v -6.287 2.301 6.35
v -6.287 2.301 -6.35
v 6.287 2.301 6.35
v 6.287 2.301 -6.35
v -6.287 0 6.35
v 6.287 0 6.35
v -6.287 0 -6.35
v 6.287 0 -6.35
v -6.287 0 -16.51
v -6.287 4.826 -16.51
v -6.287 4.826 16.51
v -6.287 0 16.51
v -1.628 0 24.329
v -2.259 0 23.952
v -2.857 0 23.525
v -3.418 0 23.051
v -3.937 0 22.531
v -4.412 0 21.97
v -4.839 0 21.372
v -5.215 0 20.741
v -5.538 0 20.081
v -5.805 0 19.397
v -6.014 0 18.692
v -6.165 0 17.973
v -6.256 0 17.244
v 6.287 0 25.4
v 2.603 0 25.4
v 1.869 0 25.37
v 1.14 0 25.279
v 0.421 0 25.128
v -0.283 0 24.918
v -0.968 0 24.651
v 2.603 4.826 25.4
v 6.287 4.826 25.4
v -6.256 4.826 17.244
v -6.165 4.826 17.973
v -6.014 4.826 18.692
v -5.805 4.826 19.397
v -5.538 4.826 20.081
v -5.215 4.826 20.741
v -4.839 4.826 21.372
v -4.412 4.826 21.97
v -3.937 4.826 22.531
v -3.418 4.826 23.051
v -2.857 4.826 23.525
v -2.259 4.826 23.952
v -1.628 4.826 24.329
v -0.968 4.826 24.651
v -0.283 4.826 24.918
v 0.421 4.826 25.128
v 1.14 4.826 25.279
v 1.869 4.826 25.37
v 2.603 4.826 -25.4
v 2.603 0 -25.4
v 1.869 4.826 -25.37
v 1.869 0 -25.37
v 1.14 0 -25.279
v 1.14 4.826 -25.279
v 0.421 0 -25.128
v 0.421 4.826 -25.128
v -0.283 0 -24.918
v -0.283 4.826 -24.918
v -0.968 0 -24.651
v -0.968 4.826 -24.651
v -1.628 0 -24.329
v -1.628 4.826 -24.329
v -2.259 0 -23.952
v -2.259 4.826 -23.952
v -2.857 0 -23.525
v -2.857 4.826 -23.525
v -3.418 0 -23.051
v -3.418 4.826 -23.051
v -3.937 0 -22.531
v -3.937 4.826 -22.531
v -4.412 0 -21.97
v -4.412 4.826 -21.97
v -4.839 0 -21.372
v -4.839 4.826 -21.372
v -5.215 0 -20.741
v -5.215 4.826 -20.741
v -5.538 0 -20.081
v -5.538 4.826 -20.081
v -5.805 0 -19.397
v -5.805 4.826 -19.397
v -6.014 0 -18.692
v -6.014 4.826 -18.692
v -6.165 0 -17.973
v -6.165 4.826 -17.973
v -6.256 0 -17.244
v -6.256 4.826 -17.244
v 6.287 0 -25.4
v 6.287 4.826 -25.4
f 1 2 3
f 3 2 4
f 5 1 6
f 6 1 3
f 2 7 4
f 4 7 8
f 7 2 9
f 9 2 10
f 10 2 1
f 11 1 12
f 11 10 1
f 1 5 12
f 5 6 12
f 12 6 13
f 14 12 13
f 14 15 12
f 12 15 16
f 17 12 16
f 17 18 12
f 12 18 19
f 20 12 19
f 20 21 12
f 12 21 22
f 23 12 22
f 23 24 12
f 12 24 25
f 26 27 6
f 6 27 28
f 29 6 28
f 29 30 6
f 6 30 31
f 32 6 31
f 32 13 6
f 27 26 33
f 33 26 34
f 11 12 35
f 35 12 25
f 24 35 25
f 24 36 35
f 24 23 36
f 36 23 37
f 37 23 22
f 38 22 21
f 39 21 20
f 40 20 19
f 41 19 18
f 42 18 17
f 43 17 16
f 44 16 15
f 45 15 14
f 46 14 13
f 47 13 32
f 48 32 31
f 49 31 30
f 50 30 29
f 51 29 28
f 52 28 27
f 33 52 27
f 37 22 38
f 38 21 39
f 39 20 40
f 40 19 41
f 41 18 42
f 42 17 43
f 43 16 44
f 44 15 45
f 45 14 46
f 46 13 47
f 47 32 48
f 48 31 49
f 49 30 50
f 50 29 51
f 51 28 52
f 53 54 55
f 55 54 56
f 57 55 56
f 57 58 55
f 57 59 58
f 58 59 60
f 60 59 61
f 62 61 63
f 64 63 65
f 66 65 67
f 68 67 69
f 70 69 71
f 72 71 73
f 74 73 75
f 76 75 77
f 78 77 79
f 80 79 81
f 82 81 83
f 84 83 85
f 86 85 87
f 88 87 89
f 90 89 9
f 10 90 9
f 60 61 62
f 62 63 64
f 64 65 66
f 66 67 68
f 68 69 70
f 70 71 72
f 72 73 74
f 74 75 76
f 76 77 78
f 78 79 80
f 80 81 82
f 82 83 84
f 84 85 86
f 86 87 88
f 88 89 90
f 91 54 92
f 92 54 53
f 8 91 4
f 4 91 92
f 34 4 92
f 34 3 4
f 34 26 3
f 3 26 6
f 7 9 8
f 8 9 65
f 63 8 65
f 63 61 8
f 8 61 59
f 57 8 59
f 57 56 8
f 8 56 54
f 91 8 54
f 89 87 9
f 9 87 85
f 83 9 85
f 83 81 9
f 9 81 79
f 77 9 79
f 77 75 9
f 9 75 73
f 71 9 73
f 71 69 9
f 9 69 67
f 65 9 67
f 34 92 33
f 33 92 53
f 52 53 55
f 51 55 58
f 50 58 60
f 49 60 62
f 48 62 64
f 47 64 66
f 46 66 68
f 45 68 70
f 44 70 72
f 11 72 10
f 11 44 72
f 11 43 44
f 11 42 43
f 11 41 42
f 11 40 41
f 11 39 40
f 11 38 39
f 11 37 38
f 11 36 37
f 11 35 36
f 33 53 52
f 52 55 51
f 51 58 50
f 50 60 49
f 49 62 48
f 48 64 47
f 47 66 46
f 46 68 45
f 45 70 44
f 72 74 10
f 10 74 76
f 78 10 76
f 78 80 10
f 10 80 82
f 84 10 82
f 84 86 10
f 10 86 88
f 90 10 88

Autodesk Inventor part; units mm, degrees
ref_plane "YZ Plane" through (0, 0, 0) normal (1, 0, 0) x (0, 1, 0)
ref_plane "XZ Plane" through (0, 0, 0) normal (0, 1, 0) x (-1, 0, 0)
ref_plane "XY Plane" through (0, 0, 0) normal (0, 0, 1) x (1, 0, 0)
sketch "Sketch1" plane through (0, 0, 0) normal (0, 1, 0) x (-1, 0, 0)
  line L0 (-2.6035, 25.4) -> (-6.2865, 25.4)
  line L1 (-6.2865, 25.4) -> (-6.2865, -25.4)
  line L2 (-6.2865, -25.4) -> (-2.6035, -25.4)
  line L3 (6.2865, -16.51) -> (6.2865, 16.51)
  line L4 (6.2865, 25.4) -> (-6.2865, -25.4) construction
  line L5 (-6.2865, 25.4) -> (6.2865, -25.4) construction
  arc A0 (6.2865, 16.51) -> (-2.6035, 25.4) centre (-2.6035, 16.51) ccw
  arc A1 (-2.6035, -25.4) -> (6.2865, -16.51) centre (-2.6035, -16.51) ccw
  point P0 (0, 0)
  dimension "d0" = 12.573
  dimension "d1" = 50.8
  dimension "d2" = 8.89
extrude "Extrusion1" add sketch "Sketch1" along normal blind 4.826
sketch "Sketch2" plane through (6.2865, 0, 25.4) normal (1, 0, 0) x (0, 0, -1)
  line L0 (20.3835, 2.1639) -> (30.4165, 2.1639)
  line L1 (25.4, 0) -> (20.3835, 2.1639) construction
  line L2 (25.4, 0) -> (30.4165, 2.1639) construction
  line L3 (50.8, 0) -> (0, 0) projected
  line L4 (20.066, 2.1639) -> (20.066, 2.3009)
  line L5 (20.066, 2.3009) -> (30.734, 2.3009)
  line L6 (30.734, 2.3009) -> (30.734, 2.1639)
  line L7 (25.4, 0) -> (20.066, 2.3009) construction
  line L8 (25.4, 0) -> (30.734, 2.3009) construction
  line L9 (30.734, -2.3009) -> (30.4165, -2.3009)
  line L10 (20.3835, -2.3009) -> (20.066, -2.3009)
  line L11 (20.066, 2.3009) -> (19.05, 2.3009)
  line L12 (19.05, 2.3009) -> (19.05, 0)
  line L13 (30.734, 2.3009) -> (31.75, 2.3009)
  line L14 (31.75, 2.3009) -> (31.75, 0)
  point P0 (20.3835, 0)
  point P1 (30.4165, 0)
  point P2 (20.066, 0)
  point P3 (30.734, 0)
extrude "Extrusion2" cut sketch "Sketch2" against normal blind 12.7
properties part number "pig_wings"
